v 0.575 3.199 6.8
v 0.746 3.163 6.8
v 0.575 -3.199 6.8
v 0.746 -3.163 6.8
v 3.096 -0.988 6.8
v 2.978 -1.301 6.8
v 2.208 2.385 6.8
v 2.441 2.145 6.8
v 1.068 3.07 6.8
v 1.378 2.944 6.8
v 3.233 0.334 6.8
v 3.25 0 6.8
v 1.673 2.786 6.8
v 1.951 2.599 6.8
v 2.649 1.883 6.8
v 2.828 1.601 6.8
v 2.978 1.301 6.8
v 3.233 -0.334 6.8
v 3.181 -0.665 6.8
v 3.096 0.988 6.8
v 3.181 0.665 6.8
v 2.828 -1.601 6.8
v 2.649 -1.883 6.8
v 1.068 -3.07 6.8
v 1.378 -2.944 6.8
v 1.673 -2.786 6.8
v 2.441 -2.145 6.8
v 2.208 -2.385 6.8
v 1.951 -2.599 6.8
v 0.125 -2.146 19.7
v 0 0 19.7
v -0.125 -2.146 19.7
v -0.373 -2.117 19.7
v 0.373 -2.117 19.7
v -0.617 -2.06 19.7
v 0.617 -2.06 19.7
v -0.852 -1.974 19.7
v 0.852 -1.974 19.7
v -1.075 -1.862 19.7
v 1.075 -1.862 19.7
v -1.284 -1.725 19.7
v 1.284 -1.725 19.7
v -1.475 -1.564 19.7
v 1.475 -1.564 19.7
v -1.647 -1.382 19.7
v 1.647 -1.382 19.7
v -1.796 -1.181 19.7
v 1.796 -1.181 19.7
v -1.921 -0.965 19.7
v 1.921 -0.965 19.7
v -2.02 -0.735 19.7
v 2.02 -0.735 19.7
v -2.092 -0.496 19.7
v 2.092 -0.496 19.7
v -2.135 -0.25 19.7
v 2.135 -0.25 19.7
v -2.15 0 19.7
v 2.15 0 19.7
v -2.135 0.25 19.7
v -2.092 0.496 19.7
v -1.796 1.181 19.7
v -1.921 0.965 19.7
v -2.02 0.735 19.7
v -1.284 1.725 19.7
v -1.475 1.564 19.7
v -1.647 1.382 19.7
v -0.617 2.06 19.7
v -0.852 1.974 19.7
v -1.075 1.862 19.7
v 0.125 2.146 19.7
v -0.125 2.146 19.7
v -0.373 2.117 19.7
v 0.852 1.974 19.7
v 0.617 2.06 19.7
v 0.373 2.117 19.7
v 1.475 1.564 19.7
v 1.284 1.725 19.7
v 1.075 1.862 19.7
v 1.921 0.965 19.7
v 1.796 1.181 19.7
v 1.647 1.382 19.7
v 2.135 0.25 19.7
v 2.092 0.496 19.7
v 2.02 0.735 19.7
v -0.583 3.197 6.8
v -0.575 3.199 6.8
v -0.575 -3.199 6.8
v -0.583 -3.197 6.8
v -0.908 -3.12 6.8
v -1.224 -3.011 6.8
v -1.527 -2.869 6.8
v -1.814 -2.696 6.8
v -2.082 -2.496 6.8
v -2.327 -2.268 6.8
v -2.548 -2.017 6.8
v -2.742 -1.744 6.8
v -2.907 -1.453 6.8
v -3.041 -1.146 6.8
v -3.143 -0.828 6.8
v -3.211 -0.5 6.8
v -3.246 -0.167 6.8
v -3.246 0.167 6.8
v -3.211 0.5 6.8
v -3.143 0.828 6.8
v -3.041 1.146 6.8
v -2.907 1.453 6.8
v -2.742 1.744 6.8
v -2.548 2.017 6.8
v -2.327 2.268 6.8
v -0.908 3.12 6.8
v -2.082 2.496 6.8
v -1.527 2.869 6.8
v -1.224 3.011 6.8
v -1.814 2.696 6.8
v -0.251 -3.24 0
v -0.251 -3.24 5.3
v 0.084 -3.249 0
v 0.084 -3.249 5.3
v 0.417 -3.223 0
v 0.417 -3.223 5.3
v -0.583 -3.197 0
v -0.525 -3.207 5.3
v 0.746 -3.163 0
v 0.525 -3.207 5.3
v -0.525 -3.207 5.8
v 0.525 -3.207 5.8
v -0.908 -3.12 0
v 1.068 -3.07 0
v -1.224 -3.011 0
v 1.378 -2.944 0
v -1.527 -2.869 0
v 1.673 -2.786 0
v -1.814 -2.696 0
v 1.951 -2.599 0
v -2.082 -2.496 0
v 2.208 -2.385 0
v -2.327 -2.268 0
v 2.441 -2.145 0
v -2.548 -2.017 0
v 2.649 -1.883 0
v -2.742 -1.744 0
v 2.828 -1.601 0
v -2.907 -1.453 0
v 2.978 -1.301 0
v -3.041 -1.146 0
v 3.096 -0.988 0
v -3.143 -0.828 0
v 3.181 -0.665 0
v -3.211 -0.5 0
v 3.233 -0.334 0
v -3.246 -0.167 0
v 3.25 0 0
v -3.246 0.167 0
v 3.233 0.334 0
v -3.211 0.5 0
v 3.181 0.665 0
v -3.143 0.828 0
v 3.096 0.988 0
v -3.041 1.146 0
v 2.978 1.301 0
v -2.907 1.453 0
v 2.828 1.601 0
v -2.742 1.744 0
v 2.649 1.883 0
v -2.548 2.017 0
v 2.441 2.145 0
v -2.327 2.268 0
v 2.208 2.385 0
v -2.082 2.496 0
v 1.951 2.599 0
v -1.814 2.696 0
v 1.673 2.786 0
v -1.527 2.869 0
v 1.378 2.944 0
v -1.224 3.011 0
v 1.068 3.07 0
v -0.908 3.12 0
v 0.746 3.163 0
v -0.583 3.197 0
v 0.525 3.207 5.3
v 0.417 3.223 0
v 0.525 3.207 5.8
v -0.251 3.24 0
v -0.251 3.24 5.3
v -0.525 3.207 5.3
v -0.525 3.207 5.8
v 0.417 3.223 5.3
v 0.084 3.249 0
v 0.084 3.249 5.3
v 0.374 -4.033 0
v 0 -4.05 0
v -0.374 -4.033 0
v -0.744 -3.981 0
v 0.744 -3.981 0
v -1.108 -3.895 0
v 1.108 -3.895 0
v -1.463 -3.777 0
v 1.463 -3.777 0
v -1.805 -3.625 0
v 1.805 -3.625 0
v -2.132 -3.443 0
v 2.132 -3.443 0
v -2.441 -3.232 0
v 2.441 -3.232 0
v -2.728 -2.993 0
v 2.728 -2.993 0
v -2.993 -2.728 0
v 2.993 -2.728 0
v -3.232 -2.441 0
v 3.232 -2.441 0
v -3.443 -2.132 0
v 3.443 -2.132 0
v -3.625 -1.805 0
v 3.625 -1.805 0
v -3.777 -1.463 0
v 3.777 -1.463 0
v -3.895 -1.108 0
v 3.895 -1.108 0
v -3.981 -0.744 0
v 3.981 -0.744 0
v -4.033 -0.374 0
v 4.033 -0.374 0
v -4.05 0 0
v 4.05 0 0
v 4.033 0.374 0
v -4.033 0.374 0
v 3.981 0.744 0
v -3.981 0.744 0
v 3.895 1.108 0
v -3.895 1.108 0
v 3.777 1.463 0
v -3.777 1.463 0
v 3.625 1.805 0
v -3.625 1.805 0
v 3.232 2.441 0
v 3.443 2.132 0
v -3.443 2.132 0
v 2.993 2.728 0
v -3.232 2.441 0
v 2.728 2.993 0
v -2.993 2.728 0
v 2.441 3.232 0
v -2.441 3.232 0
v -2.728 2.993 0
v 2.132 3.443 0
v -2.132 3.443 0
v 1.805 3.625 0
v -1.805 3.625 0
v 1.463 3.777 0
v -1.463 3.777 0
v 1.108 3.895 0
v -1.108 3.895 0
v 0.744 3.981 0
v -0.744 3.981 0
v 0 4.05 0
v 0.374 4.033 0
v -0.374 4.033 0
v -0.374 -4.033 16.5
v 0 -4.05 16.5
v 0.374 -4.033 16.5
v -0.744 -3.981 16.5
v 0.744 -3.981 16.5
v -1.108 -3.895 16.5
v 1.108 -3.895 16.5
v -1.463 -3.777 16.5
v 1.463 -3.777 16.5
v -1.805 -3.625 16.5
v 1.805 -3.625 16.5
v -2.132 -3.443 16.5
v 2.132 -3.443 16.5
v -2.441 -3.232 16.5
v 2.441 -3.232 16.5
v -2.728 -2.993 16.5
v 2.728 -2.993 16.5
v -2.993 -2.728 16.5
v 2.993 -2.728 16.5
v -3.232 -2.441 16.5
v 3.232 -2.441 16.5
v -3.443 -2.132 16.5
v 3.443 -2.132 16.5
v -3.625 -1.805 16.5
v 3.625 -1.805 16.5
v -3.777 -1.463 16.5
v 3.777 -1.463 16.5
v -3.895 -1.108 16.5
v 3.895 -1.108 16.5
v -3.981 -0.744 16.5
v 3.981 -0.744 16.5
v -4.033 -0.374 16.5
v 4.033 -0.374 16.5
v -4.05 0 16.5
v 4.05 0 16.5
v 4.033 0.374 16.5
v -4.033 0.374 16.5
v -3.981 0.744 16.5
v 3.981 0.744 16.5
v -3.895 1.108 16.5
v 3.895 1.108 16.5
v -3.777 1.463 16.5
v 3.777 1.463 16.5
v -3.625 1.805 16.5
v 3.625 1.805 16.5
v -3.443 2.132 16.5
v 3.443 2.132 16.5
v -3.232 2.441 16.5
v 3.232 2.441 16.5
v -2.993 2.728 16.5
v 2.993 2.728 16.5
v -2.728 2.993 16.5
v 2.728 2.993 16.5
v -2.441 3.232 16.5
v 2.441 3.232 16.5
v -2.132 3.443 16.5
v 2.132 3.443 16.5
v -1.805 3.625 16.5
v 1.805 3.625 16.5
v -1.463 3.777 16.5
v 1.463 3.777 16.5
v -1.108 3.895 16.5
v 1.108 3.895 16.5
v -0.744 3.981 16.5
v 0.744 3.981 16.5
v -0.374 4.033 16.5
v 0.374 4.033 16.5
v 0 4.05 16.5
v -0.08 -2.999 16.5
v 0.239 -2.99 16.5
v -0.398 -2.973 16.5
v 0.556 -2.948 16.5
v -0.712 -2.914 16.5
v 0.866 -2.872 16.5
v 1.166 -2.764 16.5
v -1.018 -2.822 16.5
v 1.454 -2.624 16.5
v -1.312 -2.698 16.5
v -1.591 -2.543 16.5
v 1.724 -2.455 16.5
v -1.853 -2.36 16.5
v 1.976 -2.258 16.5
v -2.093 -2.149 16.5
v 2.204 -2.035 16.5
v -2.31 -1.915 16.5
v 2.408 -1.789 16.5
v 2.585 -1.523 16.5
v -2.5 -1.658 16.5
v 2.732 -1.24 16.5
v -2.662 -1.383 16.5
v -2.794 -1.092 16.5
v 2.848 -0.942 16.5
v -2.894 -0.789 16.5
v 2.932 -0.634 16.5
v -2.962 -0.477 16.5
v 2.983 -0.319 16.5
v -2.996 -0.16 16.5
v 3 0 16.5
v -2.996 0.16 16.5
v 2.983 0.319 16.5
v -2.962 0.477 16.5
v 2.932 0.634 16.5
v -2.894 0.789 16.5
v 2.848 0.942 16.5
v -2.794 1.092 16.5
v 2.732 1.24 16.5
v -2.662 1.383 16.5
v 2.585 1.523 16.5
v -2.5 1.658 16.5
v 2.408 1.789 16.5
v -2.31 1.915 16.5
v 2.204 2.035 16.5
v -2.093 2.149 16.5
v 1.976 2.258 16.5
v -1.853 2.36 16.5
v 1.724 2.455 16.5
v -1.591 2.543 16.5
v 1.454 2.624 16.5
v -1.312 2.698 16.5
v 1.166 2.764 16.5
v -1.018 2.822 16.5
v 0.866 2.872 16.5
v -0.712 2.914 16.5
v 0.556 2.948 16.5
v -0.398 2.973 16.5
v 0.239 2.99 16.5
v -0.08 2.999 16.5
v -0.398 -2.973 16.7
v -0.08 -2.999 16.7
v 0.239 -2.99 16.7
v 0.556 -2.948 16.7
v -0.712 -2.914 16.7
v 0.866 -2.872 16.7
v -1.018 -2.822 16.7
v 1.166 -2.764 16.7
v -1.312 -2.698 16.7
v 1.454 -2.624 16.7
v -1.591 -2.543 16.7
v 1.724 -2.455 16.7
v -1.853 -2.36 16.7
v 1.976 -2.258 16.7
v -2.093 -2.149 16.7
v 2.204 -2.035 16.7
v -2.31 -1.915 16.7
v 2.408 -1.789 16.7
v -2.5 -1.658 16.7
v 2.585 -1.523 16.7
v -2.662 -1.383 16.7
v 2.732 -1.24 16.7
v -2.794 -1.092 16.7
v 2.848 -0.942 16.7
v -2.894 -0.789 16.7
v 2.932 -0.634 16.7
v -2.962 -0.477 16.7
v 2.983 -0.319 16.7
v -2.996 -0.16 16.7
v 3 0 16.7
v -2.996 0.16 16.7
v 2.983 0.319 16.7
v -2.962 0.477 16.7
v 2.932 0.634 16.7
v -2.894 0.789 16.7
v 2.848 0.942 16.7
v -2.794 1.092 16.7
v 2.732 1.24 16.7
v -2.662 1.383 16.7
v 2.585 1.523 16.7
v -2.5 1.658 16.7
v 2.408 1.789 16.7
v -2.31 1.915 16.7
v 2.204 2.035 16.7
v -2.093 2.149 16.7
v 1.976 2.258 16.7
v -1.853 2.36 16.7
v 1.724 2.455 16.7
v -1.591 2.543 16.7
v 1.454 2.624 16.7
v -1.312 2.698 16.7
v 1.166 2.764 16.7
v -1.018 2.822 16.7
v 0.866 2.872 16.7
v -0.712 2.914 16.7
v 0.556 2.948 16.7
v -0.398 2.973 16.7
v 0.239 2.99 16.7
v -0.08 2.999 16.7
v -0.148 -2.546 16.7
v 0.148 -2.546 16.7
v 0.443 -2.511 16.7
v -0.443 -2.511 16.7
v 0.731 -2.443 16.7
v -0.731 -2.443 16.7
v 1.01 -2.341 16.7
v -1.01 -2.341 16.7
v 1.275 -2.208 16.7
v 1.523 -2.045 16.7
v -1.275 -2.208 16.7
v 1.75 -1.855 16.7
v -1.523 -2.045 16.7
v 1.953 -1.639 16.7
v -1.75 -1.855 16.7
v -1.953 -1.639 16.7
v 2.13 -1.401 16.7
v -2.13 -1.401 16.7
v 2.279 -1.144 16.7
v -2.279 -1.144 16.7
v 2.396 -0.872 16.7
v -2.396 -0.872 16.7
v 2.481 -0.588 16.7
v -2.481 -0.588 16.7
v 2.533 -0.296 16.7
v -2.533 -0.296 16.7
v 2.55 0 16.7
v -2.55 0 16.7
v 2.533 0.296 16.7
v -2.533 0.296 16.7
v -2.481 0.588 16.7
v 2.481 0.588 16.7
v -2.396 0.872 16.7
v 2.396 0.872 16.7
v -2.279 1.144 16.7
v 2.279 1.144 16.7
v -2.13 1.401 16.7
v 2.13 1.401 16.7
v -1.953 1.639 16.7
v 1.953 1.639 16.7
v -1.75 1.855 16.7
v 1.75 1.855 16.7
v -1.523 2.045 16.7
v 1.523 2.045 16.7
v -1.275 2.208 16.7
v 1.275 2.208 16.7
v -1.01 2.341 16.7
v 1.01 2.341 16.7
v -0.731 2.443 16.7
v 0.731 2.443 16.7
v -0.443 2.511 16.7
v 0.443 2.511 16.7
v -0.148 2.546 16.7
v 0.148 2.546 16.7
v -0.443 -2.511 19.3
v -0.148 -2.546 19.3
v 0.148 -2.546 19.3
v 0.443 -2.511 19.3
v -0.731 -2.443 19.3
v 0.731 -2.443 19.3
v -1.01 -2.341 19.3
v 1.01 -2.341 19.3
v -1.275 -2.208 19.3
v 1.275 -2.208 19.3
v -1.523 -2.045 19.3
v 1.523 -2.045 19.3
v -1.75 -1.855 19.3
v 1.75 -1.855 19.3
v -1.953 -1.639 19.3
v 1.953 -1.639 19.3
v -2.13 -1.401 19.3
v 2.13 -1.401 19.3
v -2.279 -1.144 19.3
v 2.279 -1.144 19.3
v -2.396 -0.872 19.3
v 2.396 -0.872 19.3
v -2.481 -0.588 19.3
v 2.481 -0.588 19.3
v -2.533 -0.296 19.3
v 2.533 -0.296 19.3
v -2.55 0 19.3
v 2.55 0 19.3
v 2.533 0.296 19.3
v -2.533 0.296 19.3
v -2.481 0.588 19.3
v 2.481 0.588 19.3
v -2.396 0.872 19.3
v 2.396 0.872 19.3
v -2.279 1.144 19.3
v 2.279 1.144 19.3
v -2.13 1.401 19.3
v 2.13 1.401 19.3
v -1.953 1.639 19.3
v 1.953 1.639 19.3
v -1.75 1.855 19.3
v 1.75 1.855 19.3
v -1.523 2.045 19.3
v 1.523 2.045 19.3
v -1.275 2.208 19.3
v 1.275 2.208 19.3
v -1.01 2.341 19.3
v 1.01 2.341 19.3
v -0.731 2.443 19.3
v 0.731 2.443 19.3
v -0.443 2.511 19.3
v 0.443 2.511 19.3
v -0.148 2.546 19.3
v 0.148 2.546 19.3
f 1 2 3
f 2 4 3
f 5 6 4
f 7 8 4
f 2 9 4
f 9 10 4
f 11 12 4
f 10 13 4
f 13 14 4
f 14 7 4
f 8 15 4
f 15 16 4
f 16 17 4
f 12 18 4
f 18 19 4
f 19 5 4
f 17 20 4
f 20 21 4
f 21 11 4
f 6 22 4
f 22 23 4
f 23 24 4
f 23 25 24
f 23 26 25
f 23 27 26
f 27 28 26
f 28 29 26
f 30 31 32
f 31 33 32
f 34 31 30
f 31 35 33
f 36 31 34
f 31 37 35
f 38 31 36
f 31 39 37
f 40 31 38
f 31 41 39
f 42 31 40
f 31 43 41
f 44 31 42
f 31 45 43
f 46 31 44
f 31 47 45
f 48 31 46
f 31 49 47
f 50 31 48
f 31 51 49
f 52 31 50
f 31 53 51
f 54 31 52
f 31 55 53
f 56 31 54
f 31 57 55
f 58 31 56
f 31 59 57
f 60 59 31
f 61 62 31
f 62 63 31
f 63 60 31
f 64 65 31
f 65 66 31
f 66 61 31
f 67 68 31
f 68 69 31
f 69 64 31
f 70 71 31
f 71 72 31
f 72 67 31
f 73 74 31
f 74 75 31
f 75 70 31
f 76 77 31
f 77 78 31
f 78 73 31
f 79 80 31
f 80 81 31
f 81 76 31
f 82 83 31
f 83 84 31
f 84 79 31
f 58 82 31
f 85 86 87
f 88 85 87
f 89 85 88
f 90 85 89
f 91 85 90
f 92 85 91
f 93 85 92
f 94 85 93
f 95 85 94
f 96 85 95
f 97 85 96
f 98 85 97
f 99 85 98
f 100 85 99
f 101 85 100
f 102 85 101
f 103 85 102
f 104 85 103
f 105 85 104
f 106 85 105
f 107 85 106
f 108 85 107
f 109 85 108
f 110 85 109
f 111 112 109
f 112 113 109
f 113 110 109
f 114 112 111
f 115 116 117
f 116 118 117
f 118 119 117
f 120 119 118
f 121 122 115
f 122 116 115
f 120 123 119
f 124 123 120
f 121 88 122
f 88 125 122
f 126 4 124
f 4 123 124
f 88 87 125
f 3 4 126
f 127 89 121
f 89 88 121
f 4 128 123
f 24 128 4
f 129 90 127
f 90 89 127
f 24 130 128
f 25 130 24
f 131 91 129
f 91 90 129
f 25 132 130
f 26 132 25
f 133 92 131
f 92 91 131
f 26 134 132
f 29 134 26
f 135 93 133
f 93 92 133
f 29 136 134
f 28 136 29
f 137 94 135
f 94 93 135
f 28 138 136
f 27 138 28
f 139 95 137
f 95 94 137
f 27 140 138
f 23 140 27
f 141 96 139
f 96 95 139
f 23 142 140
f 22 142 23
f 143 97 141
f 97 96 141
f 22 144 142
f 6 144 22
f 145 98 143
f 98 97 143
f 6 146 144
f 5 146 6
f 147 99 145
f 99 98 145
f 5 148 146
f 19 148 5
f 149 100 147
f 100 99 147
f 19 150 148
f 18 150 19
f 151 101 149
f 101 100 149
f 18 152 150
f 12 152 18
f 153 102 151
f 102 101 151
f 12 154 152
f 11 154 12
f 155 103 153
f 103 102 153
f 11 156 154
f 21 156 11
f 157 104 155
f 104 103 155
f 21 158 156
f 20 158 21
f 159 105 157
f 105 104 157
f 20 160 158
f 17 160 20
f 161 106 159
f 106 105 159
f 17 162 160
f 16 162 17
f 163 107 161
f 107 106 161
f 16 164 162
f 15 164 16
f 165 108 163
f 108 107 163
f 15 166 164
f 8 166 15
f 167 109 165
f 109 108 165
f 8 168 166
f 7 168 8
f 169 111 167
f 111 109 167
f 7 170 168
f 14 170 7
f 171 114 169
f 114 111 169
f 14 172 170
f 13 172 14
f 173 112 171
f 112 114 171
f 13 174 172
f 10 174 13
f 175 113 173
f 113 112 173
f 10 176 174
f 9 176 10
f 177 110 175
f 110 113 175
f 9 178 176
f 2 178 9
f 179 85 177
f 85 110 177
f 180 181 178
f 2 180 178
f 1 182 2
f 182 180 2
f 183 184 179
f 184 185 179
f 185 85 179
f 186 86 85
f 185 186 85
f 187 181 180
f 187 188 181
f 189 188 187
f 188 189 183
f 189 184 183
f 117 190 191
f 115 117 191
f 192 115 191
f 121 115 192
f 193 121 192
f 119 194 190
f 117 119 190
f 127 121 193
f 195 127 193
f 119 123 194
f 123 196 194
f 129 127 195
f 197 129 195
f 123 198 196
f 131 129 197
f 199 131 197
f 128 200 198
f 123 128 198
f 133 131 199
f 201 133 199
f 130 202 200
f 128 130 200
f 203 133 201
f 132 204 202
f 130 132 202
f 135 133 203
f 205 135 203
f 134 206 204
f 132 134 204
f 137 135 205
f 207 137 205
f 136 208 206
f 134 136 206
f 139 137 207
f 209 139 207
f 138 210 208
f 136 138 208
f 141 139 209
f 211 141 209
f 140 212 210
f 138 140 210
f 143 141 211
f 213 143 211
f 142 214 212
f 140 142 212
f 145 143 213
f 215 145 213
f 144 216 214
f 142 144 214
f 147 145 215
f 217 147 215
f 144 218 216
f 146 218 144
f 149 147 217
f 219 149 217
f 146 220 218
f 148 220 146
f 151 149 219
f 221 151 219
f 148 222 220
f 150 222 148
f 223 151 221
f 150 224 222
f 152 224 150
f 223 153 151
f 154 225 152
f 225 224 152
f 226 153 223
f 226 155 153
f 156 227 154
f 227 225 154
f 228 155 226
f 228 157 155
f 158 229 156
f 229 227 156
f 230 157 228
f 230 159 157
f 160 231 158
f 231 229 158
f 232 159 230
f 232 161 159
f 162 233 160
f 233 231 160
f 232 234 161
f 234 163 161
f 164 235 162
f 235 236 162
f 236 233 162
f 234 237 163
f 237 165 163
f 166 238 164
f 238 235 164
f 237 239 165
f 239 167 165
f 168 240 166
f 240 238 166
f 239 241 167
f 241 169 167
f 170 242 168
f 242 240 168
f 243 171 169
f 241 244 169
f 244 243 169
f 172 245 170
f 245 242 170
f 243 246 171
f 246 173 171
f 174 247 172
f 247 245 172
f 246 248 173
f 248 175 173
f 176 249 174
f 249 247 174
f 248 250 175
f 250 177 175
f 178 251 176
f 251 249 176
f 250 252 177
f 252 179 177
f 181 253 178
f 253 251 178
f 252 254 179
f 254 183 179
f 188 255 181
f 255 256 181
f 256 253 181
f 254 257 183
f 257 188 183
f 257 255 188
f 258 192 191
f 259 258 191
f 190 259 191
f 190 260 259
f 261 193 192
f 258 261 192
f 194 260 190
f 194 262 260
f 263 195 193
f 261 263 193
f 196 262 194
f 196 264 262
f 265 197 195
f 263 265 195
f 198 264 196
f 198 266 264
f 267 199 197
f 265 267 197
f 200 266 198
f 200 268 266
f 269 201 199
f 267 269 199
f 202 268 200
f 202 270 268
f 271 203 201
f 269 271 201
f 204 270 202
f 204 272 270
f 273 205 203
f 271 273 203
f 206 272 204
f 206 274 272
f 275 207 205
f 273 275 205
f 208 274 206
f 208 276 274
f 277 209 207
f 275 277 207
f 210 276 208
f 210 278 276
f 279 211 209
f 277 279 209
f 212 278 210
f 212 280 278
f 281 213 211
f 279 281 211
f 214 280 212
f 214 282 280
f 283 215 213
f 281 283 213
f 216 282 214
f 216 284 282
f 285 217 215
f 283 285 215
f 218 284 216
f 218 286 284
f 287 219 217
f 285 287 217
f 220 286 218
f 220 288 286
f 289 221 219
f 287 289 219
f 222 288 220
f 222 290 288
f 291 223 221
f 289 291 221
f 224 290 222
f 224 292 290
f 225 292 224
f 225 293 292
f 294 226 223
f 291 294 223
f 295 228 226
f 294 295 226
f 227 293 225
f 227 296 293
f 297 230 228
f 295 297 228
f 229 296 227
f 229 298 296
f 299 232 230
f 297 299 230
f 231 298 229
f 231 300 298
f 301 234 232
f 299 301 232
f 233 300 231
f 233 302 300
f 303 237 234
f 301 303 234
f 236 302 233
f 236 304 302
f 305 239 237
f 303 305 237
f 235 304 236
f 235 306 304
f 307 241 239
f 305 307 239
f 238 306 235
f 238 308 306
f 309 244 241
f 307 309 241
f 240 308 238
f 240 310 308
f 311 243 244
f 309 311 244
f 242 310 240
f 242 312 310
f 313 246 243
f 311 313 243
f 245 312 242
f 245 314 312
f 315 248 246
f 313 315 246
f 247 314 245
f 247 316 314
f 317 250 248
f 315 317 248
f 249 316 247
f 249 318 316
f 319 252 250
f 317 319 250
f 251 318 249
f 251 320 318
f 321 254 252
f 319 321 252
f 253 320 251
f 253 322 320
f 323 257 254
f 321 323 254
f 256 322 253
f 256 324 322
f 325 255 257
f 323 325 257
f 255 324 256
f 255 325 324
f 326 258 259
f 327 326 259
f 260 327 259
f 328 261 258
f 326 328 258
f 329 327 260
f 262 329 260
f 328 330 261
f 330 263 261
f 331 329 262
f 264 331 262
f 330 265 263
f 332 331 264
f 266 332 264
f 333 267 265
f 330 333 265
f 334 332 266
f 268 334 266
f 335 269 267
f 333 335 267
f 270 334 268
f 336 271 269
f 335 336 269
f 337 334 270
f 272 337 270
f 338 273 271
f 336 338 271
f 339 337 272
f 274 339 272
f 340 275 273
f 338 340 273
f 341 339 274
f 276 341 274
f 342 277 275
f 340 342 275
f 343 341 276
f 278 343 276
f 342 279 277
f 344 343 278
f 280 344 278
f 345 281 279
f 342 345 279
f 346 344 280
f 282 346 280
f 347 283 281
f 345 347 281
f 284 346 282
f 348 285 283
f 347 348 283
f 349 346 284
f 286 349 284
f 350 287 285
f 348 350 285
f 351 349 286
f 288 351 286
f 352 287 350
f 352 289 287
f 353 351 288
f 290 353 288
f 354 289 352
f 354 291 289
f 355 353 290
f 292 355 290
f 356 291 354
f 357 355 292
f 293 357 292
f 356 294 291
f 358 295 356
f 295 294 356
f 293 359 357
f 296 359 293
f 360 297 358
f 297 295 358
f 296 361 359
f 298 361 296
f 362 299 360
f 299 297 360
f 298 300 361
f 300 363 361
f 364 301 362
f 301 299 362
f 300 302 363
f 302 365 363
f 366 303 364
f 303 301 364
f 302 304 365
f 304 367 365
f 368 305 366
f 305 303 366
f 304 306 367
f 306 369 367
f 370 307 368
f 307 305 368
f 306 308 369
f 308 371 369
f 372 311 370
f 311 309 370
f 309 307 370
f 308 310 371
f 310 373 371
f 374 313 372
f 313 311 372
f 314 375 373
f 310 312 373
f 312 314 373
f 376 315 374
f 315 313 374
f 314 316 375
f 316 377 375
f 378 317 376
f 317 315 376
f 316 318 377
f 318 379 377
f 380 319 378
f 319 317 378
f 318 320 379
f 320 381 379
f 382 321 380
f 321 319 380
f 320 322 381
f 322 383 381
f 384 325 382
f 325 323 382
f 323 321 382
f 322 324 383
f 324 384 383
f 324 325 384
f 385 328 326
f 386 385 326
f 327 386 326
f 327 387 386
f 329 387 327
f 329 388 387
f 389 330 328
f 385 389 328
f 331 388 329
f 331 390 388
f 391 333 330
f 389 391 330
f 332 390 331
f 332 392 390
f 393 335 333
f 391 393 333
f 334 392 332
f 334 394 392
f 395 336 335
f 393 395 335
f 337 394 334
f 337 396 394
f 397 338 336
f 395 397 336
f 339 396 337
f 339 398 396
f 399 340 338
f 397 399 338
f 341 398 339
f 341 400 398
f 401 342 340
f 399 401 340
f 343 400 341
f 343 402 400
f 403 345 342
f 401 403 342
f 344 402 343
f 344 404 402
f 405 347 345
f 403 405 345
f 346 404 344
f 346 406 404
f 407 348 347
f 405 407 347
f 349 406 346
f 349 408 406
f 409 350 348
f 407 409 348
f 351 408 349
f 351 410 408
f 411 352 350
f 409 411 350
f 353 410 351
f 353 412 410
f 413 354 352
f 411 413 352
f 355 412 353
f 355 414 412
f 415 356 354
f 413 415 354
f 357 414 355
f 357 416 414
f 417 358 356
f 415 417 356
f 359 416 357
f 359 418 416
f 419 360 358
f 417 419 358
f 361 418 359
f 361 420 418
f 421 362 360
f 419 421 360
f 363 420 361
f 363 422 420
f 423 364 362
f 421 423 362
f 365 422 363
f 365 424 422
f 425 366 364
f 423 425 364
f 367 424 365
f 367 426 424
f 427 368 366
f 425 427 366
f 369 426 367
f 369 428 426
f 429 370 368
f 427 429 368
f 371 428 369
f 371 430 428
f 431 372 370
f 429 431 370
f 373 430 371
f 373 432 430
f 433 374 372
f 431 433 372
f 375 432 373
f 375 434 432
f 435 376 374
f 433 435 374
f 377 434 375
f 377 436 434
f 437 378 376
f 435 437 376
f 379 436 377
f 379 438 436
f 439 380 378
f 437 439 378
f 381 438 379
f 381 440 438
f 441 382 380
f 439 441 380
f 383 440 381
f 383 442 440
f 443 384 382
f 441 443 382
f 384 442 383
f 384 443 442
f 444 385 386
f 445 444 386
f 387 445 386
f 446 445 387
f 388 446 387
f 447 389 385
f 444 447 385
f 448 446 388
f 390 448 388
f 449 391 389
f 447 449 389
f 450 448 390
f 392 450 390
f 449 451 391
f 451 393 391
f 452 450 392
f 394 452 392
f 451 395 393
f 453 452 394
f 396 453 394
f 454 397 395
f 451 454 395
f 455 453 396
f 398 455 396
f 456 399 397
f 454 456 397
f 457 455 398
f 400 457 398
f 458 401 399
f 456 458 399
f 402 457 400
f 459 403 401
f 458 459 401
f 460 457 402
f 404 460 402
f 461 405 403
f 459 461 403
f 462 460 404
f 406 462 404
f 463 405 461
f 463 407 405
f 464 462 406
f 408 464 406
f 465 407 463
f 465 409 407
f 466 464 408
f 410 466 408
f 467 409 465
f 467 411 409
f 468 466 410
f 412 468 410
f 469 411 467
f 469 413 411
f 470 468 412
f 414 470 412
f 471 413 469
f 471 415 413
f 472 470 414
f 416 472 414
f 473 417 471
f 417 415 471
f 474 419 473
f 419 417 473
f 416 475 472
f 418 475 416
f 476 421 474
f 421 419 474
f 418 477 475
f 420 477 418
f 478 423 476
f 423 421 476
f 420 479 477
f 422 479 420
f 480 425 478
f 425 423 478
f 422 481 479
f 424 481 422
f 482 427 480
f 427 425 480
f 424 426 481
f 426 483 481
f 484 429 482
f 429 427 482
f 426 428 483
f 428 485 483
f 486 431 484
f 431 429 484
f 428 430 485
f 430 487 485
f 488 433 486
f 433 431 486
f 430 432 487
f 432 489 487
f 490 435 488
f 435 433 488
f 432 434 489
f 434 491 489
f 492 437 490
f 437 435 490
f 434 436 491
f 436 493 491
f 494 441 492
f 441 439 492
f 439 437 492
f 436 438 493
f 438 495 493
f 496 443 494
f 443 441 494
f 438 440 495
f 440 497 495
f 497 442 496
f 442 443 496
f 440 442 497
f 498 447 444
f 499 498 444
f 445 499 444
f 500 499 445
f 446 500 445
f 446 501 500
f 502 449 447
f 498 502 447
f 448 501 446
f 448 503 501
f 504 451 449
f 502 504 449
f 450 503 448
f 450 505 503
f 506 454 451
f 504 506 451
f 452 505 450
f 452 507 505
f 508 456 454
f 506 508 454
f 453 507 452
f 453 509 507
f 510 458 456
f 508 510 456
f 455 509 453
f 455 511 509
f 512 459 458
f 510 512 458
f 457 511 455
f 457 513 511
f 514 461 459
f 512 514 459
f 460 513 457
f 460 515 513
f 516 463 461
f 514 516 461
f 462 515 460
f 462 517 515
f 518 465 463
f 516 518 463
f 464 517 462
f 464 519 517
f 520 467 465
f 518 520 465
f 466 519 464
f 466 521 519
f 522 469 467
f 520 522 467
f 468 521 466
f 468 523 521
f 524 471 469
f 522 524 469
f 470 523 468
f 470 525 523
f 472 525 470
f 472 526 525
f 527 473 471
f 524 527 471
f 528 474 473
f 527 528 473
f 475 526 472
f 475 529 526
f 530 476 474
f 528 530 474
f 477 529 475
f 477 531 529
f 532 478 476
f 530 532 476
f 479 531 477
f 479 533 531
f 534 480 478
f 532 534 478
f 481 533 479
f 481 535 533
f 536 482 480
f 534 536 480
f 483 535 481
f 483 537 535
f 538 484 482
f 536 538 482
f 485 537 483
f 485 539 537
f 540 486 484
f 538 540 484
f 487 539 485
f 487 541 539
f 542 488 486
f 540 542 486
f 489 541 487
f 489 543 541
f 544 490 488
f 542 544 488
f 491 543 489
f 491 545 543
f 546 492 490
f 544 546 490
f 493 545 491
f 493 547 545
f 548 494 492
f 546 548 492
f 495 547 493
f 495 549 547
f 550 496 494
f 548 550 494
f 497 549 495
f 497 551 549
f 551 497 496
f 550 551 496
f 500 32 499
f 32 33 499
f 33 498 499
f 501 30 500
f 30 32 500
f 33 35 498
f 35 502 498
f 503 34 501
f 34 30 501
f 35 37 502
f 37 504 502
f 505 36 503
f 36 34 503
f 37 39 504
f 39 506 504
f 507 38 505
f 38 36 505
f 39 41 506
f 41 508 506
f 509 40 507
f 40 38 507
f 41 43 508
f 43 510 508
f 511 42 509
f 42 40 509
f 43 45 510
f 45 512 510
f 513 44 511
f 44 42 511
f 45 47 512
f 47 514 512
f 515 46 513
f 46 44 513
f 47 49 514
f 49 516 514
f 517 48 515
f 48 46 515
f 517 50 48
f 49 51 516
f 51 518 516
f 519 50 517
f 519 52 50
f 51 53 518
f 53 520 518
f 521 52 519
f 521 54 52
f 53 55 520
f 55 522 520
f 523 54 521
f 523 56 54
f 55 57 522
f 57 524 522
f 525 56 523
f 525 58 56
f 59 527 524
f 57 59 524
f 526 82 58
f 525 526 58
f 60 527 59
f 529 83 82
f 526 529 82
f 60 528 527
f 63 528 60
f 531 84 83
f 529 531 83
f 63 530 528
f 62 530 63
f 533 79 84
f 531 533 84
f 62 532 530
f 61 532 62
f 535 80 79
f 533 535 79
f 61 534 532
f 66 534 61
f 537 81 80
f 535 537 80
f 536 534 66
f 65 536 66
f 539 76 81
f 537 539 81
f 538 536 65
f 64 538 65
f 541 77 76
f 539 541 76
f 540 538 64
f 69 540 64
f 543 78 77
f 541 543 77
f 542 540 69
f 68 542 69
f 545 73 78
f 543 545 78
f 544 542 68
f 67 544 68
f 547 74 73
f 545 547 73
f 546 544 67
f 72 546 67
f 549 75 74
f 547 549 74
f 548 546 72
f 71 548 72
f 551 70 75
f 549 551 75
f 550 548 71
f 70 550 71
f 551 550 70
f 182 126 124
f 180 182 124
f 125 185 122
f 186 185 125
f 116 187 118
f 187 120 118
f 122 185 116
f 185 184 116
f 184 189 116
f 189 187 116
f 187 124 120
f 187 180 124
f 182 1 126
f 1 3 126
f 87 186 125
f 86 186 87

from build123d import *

# Parameters (mm, degrees)
CHAMFER1_SIZE         = 0.4
BOSS_EXTRUDE1_DEPTH   = 1.5
CHAMFER2_SIZE         = 1
CHAMFER2_SIZE2        = 0.05
CHAMFER2_PART_2_SIZE  = 1
CHAMFER2_PART_2_SIZE2 = 0.05


with BuildPart() as part:
    # Sketch1 → Revolve1 (revolve)
    with BuildSketch(Plane(origin=(0, 0, 0), x_dir=(1, 0, 0), z_dir=(0, 1, 0))):
        Polygon((0, -19.7), (0, -6.8), (-3.25, -6.8), (-3.25, 0), (-4.05, 0), (-4.05, -16.5), (-3, -16.5), (-3, -16.7), (-2.55, -16.7), (-2.55, -19.7), align=None)
    revolve(axis=Axis((0, 0, 19.7), (0, 0, -1)))

    # Chamfer1
    chamfer1_edges = [part.edges().sort_by_distance(p)[0] for p in [
        (2.55, 0, 19.7),
    ]]
    chamfer(chamfer1_edges, length=CHAMFER1_SIZE)

    # Sketch2 → Boss-Extrude1 (add)
    with BuildSketch(Plane.XY.offset(6.8)):
        with BuildLine():
            Line((0.525, 3.207315856), (0.525, -3.207315856))
            ThreePointArc((0.525, -3.207315856), (0, -3.25), (-0.525, -3.207315856))
            Line((-0.525, -3.207315856), (-0.525, 3.207315856))
            ThreePointArc((-0.525, 3.207315856), (0, 3.25), (0.525, 3.207315856))
        make_face()
    extrude(amount=-BOSS_EXTRUDE1_DEPTH)

    # Chamfer2
    chamfer2_edges = [part.edges().sort_by_distance(p)[0] for p in [
        (-0.525, 0, 6.8),
    ]]
    chamfer2_side = [part.faces().sort_by_distance(p)[0] for p in [
        (-0.525, 0, 6.05),
    ]]
    chamfer(chamfer2_edges, length=CHAMFER2_SIZE, length2=CHAMFER2_SIZE2, reference=chamfer2_side[0])

    # Chamfer2 part 2
    chamfer2_part_2_edges = [part.edges().sort_by_distance(p)[0] for p in [
        (0.525, 0, 6.8),
    ]]
    chamfer2_part_2_side = [part.faces().sort_by_distance(p)[0] for p in [
        (0.525, 0, 6.05),
    ]]
    chamfer(chamfer2_part_2_edges, length=CHAMFER2_PART_2_SIZE, length2=CHAMFER2_PART_2_SIZE2, reference=chamfer2_part_2_side[0])


solid = part.part
